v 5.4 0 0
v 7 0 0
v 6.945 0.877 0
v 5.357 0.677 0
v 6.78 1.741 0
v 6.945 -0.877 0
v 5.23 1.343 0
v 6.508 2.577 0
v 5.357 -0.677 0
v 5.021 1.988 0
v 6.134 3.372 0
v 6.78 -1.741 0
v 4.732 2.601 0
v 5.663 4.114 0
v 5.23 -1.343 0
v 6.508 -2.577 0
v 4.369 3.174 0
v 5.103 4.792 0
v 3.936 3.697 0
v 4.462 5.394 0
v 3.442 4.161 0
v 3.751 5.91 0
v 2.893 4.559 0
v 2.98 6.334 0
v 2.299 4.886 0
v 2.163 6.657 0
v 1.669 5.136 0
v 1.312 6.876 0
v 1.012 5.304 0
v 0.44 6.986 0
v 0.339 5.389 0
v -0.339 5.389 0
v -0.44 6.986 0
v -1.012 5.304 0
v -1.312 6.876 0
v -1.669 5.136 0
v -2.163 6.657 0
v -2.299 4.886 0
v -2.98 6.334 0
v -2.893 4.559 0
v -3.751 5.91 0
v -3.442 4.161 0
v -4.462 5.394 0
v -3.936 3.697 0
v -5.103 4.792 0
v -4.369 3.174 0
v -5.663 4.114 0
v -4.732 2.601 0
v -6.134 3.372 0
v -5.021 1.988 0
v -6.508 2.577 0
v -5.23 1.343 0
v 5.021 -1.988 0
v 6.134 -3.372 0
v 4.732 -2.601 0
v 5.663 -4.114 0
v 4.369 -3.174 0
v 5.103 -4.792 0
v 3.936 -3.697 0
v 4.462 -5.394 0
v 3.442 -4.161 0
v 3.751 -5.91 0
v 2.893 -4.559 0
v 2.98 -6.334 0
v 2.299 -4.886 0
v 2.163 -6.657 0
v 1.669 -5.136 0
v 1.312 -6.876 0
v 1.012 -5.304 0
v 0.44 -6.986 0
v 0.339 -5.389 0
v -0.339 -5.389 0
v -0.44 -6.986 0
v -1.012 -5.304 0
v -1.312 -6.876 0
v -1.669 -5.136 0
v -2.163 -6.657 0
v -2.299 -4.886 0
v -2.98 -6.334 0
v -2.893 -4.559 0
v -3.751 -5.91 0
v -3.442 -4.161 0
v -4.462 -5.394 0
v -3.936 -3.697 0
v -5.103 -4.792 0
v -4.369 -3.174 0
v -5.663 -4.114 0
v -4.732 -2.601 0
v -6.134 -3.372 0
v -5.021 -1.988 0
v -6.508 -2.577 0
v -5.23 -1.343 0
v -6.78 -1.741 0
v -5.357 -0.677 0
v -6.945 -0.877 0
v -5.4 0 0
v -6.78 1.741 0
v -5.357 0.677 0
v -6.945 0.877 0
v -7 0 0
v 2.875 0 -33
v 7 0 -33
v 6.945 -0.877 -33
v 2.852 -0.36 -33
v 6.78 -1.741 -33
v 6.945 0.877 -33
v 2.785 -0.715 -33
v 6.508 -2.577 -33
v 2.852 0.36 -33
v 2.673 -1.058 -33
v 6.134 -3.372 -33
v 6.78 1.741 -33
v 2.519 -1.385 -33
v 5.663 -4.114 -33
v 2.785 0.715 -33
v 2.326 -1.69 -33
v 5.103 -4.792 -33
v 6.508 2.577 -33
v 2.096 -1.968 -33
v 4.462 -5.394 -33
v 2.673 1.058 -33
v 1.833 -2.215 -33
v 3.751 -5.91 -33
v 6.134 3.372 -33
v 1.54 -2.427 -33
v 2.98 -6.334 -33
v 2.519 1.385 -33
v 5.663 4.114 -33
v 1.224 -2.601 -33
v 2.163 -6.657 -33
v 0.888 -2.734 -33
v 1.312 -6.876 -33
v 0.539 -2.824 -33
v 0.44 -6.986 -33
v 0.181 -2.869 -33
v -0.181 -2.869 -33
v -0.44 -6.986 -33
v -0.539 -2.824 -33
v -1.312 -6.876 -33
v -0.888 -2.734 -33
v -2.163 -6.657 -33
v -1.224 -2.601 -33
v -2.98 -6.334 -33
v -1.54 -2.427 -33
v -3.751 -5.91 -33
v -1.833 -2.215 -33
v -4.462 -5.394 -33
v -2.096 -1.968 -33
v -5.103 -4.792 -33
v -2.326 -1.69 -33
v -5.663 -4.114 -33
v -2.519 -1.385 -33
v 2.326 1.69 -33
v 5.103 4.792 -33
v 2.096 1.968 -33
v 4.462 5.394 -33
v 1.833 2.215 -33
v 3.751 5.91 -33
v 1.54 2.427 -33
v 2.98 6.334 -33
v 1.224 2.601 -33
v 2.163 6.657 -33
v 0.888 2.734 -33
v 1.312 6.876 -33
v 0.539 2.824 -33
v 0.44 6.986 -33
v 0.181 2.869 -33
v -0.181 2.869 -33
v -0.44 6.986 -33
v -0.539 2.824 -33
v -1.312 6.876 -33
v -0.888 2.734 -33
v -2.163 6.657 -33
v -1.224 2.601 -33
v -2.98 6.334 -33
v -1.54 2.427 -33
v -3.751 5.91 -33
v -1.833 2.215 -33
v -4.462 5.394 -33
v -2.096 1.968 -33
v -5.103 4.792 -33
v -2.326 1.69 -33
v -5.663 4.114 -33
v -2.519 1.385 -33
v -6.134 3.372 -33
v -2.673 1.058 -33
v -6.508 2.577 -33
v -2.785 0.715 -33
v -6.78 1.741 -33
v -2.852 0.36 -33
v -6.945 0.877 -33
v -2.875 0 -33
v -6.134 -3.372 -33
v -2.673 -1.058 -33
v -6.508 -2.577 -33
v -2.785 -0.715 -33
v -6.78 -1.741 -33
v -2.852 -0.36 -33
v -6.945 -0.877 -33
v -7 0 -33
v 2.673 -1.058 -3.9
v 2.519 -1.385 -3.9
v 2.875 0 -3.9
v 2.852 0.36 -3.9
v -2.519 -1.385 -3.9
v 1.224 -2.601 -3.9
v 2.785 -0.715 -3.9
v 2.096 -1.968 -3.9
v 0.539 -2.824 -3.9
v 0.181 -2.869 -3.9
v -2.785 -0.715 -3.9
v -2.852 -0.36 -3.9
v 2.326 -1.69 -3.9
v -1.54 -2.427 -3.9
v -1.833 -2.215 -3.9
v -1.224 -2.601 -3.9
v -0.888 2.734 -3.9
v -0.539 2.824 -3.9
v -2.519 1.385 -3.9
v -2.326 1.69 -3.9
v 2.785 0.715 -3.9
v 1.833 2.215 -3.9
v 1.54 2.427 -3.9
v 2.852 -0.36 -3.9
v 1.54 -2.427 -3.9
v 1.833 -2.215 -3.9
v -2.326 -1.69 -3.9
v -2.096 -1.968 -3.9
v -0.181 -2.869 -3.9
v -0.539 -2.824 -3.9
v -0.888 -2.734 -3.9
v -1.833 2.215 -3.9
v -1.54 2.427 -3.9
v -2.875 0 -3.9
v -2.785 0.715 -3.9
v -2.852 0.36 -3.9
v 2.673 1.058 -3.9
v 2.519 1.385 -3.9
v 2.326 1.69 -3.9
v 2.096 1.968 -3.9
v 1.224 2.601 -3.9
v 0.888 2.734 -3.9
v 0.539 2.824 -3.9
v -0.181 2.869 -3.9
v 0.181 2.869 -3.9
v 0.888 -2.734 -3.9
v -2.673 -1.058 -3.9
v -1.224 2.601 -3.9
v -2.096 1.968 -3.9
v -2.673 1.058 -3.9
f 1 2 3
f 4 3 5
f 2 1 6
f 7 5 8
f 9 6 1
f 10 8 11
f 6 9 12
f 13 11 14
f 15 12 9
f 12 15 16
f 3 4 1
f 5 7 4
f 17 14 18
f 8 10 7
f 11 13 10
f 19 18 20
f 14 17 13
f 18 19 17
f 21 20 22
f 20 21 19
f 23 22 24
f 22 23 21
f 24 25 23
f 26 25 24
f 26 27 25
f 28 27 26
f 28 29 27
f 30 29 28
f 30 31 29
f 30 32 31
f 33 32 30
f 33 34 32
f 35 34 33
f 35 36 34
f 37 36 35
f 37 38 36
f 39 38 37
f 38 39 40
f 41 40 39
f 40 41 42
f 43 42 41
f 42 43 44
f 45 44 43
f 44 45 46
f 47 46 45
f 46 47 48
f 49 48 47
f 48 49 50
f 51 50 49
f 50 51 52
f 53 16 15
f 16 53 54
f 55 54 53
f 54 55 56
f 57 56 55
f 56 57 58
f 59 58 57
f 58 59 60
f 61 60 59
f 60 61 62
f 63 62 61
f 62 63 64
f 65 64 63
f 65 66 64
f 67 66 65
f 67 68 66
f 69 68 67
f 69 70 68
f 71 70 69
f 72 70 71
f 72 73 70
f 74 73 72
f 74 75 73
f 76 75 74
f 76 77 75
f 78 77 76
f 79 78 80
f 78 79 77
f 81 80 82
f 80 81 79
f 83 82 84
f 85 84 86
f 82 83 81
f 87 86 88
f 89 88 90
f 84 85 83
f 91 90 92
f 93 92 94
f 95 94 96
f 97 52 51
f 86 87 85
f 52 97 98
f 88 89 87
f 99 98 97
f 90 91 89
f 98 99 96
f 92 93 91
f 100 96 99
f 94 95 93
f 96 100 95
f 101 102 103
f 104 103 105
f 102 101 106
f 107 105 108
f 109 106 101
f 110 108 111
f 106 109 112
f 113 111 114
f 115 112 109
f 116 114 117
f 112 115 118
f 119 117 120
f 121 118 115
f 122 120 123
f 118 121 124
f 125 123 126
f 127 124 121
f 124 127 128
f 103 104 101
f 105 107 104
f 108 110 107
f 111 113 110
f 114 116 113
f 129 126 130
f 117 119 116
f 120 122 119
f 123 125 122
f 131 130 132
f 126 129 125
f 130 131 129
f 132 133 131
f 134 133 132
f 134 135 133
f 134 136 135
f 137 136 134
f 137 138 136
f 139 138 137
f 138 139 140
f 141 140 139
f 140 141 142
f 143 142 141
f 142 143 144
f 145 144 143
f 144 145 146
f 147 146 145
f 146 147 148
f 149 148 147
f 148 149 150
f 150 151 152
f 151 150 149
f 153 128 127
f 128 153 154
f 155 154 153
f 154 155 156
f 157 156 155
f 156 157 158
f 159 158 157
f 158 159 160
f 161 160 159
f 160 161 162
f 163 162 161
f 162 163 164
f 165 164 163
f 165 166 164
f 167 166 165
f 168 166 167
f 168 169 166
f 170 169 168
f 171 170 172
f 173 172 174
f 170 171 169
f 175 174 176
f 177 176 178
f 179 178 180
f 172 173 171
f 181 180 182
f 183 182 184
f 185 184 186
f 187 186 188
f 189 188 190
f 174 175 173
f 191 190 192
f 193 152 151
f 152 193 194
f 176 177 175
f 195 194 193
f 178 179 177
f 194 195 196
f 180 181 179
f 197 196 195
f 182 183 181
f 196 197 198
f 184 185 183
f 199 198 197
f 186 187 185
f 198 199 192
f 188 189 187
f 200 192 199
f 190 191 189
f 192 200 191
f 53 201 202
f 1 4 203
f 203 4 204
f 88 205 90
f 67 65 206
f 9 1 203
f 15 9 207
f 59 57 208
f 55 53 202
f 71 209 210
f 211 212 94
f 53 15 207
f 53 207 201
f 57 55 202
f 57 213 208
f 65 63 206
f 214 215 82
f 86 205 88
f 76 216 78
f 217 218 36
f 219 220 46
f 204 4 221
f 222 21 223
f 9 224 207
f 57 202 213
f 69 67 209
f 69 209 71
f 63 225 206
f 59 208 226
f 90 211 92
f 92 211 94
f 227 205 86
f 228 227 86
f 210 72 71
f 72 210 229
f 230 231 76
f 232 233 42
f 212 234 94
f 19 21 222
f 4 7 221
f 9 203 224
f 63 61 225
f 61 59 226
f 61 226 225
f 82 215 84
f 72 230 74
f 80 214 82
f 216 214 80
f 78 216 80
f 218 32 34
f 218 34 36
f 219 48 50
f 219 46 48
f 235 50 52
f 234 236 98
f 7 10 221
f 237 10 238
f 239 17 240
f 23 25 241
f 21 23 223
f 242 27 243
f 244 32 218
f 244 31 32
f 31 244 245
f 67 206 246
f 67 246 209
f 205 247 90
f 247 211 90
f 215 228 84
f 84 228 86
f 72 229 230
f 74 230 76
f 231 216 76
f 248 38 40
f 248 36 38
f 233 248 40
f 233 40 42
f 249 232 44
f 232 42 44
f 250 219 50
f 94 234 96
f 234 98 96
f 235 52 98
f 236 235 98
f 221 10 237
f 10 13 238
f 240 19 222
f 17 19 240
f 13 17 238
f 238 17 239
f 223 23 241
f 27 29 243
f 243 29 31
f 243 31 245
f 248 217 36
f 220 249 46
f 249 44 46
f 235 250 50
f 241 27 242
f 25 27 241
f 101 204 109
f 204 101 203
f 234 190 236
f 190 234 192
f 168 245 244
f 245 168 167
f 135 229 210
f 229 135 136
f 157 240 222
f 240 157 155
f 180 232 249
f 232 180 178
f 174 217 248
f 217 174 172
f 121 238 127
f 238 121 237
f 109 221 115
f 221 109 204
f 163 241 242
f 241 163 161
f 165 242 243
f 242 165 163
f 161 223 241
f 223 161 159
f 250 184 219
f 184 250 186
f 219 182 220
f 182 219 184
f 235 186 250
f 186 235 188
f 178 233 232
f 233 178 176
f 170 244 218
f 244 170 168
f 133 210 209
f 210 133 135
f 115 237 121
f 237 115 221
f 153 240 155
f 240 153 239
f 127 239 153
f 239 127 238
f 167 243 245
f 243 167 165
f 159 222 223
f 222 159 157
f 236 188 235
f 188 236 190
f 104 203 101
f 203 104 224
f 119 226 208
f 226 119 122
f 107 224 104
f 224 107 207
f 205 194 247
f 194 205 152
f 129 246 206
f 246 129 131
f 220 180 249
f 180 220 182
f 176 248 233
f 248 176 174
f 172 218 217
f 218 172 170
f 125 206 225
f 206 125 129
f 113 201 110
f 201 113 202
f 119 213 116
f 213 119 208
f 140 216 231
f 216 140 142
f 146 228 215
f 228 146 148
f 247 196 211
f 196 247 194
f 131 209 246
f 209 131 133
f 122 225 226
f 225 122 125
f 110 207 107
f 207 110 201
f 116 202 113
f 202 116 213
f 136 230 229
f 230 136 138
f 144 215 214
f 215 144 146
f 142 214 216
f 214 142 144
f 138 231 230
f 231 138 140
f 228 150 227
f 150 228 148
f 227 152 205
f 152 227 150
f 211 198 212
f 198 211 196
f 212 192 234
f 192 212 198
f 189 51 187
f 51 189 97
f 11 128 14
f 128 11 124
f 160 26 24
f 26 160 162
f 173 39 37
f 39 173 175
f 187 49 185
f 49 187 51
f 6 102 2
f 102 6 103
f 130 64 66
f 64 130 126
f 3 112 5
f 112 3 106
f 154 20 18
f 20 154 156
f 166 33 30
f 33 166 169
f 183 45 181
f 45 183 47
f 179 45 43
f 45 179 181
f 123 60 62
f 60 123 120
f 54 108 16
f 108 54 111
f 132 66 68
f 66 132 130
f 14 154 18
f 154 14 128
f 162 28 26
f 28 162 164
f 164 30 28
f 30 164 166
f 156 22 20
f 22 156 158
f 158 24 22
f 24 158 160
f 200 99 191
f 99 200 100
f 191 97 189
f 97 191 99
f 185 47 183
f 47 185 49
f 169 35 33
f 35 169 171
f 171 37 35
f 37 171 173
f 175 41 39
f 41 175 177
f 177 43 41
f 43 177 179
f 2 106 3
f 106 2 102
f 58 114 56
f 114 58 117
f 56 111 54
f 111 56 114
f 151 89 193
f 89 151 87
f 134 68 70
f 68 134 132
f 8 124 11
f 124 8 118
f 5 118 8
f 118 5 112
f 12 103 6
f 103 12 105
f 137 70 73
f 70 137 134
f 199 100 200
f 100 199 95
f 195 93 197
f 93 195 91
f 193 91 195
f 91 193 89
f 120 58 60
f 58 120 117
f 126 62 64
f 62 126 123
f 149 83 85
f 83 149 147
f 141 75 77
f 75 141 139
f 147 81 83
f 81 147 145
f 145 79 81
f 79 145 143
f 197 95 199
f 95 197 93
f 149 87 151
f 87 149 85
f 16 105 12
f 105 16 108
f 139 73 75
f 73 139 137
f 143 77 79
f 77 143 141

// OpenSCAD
$fn = 50;


difference() {
	union() {
		translate(v = [0, 0, -33.0000000000]) {
			cylinder(h = 33, r = 7.0000000000);
		}
	}
	union() {
		translate(v = [0, 0, 0]) {
			rotate(a = [0, 0, 0]) {
				difference() {
					union() {
						#translate(v = [0, 0, -33.0000000000]) {
							cylinder(h = 33, r = 2.6000000000);
						}
						#translate(v = [0, 0, -3.9000000000]) {
							cylinder(h = 3.9000000000, r = 7.0000000000, r1 = 2.8750000000, r2 = 5.4000000000);
						}
						#translate(v = [0, 0, -33.0000000000]) {
							cylinder(h = 33, r = 2.8750000000);
						}
						#translate(v = [0, 0, -33.0000000000]) {
							cylinder(h = 33, r = 2.6000000000);
						}
					}
					union();
				}
			}
		}
	}
}
